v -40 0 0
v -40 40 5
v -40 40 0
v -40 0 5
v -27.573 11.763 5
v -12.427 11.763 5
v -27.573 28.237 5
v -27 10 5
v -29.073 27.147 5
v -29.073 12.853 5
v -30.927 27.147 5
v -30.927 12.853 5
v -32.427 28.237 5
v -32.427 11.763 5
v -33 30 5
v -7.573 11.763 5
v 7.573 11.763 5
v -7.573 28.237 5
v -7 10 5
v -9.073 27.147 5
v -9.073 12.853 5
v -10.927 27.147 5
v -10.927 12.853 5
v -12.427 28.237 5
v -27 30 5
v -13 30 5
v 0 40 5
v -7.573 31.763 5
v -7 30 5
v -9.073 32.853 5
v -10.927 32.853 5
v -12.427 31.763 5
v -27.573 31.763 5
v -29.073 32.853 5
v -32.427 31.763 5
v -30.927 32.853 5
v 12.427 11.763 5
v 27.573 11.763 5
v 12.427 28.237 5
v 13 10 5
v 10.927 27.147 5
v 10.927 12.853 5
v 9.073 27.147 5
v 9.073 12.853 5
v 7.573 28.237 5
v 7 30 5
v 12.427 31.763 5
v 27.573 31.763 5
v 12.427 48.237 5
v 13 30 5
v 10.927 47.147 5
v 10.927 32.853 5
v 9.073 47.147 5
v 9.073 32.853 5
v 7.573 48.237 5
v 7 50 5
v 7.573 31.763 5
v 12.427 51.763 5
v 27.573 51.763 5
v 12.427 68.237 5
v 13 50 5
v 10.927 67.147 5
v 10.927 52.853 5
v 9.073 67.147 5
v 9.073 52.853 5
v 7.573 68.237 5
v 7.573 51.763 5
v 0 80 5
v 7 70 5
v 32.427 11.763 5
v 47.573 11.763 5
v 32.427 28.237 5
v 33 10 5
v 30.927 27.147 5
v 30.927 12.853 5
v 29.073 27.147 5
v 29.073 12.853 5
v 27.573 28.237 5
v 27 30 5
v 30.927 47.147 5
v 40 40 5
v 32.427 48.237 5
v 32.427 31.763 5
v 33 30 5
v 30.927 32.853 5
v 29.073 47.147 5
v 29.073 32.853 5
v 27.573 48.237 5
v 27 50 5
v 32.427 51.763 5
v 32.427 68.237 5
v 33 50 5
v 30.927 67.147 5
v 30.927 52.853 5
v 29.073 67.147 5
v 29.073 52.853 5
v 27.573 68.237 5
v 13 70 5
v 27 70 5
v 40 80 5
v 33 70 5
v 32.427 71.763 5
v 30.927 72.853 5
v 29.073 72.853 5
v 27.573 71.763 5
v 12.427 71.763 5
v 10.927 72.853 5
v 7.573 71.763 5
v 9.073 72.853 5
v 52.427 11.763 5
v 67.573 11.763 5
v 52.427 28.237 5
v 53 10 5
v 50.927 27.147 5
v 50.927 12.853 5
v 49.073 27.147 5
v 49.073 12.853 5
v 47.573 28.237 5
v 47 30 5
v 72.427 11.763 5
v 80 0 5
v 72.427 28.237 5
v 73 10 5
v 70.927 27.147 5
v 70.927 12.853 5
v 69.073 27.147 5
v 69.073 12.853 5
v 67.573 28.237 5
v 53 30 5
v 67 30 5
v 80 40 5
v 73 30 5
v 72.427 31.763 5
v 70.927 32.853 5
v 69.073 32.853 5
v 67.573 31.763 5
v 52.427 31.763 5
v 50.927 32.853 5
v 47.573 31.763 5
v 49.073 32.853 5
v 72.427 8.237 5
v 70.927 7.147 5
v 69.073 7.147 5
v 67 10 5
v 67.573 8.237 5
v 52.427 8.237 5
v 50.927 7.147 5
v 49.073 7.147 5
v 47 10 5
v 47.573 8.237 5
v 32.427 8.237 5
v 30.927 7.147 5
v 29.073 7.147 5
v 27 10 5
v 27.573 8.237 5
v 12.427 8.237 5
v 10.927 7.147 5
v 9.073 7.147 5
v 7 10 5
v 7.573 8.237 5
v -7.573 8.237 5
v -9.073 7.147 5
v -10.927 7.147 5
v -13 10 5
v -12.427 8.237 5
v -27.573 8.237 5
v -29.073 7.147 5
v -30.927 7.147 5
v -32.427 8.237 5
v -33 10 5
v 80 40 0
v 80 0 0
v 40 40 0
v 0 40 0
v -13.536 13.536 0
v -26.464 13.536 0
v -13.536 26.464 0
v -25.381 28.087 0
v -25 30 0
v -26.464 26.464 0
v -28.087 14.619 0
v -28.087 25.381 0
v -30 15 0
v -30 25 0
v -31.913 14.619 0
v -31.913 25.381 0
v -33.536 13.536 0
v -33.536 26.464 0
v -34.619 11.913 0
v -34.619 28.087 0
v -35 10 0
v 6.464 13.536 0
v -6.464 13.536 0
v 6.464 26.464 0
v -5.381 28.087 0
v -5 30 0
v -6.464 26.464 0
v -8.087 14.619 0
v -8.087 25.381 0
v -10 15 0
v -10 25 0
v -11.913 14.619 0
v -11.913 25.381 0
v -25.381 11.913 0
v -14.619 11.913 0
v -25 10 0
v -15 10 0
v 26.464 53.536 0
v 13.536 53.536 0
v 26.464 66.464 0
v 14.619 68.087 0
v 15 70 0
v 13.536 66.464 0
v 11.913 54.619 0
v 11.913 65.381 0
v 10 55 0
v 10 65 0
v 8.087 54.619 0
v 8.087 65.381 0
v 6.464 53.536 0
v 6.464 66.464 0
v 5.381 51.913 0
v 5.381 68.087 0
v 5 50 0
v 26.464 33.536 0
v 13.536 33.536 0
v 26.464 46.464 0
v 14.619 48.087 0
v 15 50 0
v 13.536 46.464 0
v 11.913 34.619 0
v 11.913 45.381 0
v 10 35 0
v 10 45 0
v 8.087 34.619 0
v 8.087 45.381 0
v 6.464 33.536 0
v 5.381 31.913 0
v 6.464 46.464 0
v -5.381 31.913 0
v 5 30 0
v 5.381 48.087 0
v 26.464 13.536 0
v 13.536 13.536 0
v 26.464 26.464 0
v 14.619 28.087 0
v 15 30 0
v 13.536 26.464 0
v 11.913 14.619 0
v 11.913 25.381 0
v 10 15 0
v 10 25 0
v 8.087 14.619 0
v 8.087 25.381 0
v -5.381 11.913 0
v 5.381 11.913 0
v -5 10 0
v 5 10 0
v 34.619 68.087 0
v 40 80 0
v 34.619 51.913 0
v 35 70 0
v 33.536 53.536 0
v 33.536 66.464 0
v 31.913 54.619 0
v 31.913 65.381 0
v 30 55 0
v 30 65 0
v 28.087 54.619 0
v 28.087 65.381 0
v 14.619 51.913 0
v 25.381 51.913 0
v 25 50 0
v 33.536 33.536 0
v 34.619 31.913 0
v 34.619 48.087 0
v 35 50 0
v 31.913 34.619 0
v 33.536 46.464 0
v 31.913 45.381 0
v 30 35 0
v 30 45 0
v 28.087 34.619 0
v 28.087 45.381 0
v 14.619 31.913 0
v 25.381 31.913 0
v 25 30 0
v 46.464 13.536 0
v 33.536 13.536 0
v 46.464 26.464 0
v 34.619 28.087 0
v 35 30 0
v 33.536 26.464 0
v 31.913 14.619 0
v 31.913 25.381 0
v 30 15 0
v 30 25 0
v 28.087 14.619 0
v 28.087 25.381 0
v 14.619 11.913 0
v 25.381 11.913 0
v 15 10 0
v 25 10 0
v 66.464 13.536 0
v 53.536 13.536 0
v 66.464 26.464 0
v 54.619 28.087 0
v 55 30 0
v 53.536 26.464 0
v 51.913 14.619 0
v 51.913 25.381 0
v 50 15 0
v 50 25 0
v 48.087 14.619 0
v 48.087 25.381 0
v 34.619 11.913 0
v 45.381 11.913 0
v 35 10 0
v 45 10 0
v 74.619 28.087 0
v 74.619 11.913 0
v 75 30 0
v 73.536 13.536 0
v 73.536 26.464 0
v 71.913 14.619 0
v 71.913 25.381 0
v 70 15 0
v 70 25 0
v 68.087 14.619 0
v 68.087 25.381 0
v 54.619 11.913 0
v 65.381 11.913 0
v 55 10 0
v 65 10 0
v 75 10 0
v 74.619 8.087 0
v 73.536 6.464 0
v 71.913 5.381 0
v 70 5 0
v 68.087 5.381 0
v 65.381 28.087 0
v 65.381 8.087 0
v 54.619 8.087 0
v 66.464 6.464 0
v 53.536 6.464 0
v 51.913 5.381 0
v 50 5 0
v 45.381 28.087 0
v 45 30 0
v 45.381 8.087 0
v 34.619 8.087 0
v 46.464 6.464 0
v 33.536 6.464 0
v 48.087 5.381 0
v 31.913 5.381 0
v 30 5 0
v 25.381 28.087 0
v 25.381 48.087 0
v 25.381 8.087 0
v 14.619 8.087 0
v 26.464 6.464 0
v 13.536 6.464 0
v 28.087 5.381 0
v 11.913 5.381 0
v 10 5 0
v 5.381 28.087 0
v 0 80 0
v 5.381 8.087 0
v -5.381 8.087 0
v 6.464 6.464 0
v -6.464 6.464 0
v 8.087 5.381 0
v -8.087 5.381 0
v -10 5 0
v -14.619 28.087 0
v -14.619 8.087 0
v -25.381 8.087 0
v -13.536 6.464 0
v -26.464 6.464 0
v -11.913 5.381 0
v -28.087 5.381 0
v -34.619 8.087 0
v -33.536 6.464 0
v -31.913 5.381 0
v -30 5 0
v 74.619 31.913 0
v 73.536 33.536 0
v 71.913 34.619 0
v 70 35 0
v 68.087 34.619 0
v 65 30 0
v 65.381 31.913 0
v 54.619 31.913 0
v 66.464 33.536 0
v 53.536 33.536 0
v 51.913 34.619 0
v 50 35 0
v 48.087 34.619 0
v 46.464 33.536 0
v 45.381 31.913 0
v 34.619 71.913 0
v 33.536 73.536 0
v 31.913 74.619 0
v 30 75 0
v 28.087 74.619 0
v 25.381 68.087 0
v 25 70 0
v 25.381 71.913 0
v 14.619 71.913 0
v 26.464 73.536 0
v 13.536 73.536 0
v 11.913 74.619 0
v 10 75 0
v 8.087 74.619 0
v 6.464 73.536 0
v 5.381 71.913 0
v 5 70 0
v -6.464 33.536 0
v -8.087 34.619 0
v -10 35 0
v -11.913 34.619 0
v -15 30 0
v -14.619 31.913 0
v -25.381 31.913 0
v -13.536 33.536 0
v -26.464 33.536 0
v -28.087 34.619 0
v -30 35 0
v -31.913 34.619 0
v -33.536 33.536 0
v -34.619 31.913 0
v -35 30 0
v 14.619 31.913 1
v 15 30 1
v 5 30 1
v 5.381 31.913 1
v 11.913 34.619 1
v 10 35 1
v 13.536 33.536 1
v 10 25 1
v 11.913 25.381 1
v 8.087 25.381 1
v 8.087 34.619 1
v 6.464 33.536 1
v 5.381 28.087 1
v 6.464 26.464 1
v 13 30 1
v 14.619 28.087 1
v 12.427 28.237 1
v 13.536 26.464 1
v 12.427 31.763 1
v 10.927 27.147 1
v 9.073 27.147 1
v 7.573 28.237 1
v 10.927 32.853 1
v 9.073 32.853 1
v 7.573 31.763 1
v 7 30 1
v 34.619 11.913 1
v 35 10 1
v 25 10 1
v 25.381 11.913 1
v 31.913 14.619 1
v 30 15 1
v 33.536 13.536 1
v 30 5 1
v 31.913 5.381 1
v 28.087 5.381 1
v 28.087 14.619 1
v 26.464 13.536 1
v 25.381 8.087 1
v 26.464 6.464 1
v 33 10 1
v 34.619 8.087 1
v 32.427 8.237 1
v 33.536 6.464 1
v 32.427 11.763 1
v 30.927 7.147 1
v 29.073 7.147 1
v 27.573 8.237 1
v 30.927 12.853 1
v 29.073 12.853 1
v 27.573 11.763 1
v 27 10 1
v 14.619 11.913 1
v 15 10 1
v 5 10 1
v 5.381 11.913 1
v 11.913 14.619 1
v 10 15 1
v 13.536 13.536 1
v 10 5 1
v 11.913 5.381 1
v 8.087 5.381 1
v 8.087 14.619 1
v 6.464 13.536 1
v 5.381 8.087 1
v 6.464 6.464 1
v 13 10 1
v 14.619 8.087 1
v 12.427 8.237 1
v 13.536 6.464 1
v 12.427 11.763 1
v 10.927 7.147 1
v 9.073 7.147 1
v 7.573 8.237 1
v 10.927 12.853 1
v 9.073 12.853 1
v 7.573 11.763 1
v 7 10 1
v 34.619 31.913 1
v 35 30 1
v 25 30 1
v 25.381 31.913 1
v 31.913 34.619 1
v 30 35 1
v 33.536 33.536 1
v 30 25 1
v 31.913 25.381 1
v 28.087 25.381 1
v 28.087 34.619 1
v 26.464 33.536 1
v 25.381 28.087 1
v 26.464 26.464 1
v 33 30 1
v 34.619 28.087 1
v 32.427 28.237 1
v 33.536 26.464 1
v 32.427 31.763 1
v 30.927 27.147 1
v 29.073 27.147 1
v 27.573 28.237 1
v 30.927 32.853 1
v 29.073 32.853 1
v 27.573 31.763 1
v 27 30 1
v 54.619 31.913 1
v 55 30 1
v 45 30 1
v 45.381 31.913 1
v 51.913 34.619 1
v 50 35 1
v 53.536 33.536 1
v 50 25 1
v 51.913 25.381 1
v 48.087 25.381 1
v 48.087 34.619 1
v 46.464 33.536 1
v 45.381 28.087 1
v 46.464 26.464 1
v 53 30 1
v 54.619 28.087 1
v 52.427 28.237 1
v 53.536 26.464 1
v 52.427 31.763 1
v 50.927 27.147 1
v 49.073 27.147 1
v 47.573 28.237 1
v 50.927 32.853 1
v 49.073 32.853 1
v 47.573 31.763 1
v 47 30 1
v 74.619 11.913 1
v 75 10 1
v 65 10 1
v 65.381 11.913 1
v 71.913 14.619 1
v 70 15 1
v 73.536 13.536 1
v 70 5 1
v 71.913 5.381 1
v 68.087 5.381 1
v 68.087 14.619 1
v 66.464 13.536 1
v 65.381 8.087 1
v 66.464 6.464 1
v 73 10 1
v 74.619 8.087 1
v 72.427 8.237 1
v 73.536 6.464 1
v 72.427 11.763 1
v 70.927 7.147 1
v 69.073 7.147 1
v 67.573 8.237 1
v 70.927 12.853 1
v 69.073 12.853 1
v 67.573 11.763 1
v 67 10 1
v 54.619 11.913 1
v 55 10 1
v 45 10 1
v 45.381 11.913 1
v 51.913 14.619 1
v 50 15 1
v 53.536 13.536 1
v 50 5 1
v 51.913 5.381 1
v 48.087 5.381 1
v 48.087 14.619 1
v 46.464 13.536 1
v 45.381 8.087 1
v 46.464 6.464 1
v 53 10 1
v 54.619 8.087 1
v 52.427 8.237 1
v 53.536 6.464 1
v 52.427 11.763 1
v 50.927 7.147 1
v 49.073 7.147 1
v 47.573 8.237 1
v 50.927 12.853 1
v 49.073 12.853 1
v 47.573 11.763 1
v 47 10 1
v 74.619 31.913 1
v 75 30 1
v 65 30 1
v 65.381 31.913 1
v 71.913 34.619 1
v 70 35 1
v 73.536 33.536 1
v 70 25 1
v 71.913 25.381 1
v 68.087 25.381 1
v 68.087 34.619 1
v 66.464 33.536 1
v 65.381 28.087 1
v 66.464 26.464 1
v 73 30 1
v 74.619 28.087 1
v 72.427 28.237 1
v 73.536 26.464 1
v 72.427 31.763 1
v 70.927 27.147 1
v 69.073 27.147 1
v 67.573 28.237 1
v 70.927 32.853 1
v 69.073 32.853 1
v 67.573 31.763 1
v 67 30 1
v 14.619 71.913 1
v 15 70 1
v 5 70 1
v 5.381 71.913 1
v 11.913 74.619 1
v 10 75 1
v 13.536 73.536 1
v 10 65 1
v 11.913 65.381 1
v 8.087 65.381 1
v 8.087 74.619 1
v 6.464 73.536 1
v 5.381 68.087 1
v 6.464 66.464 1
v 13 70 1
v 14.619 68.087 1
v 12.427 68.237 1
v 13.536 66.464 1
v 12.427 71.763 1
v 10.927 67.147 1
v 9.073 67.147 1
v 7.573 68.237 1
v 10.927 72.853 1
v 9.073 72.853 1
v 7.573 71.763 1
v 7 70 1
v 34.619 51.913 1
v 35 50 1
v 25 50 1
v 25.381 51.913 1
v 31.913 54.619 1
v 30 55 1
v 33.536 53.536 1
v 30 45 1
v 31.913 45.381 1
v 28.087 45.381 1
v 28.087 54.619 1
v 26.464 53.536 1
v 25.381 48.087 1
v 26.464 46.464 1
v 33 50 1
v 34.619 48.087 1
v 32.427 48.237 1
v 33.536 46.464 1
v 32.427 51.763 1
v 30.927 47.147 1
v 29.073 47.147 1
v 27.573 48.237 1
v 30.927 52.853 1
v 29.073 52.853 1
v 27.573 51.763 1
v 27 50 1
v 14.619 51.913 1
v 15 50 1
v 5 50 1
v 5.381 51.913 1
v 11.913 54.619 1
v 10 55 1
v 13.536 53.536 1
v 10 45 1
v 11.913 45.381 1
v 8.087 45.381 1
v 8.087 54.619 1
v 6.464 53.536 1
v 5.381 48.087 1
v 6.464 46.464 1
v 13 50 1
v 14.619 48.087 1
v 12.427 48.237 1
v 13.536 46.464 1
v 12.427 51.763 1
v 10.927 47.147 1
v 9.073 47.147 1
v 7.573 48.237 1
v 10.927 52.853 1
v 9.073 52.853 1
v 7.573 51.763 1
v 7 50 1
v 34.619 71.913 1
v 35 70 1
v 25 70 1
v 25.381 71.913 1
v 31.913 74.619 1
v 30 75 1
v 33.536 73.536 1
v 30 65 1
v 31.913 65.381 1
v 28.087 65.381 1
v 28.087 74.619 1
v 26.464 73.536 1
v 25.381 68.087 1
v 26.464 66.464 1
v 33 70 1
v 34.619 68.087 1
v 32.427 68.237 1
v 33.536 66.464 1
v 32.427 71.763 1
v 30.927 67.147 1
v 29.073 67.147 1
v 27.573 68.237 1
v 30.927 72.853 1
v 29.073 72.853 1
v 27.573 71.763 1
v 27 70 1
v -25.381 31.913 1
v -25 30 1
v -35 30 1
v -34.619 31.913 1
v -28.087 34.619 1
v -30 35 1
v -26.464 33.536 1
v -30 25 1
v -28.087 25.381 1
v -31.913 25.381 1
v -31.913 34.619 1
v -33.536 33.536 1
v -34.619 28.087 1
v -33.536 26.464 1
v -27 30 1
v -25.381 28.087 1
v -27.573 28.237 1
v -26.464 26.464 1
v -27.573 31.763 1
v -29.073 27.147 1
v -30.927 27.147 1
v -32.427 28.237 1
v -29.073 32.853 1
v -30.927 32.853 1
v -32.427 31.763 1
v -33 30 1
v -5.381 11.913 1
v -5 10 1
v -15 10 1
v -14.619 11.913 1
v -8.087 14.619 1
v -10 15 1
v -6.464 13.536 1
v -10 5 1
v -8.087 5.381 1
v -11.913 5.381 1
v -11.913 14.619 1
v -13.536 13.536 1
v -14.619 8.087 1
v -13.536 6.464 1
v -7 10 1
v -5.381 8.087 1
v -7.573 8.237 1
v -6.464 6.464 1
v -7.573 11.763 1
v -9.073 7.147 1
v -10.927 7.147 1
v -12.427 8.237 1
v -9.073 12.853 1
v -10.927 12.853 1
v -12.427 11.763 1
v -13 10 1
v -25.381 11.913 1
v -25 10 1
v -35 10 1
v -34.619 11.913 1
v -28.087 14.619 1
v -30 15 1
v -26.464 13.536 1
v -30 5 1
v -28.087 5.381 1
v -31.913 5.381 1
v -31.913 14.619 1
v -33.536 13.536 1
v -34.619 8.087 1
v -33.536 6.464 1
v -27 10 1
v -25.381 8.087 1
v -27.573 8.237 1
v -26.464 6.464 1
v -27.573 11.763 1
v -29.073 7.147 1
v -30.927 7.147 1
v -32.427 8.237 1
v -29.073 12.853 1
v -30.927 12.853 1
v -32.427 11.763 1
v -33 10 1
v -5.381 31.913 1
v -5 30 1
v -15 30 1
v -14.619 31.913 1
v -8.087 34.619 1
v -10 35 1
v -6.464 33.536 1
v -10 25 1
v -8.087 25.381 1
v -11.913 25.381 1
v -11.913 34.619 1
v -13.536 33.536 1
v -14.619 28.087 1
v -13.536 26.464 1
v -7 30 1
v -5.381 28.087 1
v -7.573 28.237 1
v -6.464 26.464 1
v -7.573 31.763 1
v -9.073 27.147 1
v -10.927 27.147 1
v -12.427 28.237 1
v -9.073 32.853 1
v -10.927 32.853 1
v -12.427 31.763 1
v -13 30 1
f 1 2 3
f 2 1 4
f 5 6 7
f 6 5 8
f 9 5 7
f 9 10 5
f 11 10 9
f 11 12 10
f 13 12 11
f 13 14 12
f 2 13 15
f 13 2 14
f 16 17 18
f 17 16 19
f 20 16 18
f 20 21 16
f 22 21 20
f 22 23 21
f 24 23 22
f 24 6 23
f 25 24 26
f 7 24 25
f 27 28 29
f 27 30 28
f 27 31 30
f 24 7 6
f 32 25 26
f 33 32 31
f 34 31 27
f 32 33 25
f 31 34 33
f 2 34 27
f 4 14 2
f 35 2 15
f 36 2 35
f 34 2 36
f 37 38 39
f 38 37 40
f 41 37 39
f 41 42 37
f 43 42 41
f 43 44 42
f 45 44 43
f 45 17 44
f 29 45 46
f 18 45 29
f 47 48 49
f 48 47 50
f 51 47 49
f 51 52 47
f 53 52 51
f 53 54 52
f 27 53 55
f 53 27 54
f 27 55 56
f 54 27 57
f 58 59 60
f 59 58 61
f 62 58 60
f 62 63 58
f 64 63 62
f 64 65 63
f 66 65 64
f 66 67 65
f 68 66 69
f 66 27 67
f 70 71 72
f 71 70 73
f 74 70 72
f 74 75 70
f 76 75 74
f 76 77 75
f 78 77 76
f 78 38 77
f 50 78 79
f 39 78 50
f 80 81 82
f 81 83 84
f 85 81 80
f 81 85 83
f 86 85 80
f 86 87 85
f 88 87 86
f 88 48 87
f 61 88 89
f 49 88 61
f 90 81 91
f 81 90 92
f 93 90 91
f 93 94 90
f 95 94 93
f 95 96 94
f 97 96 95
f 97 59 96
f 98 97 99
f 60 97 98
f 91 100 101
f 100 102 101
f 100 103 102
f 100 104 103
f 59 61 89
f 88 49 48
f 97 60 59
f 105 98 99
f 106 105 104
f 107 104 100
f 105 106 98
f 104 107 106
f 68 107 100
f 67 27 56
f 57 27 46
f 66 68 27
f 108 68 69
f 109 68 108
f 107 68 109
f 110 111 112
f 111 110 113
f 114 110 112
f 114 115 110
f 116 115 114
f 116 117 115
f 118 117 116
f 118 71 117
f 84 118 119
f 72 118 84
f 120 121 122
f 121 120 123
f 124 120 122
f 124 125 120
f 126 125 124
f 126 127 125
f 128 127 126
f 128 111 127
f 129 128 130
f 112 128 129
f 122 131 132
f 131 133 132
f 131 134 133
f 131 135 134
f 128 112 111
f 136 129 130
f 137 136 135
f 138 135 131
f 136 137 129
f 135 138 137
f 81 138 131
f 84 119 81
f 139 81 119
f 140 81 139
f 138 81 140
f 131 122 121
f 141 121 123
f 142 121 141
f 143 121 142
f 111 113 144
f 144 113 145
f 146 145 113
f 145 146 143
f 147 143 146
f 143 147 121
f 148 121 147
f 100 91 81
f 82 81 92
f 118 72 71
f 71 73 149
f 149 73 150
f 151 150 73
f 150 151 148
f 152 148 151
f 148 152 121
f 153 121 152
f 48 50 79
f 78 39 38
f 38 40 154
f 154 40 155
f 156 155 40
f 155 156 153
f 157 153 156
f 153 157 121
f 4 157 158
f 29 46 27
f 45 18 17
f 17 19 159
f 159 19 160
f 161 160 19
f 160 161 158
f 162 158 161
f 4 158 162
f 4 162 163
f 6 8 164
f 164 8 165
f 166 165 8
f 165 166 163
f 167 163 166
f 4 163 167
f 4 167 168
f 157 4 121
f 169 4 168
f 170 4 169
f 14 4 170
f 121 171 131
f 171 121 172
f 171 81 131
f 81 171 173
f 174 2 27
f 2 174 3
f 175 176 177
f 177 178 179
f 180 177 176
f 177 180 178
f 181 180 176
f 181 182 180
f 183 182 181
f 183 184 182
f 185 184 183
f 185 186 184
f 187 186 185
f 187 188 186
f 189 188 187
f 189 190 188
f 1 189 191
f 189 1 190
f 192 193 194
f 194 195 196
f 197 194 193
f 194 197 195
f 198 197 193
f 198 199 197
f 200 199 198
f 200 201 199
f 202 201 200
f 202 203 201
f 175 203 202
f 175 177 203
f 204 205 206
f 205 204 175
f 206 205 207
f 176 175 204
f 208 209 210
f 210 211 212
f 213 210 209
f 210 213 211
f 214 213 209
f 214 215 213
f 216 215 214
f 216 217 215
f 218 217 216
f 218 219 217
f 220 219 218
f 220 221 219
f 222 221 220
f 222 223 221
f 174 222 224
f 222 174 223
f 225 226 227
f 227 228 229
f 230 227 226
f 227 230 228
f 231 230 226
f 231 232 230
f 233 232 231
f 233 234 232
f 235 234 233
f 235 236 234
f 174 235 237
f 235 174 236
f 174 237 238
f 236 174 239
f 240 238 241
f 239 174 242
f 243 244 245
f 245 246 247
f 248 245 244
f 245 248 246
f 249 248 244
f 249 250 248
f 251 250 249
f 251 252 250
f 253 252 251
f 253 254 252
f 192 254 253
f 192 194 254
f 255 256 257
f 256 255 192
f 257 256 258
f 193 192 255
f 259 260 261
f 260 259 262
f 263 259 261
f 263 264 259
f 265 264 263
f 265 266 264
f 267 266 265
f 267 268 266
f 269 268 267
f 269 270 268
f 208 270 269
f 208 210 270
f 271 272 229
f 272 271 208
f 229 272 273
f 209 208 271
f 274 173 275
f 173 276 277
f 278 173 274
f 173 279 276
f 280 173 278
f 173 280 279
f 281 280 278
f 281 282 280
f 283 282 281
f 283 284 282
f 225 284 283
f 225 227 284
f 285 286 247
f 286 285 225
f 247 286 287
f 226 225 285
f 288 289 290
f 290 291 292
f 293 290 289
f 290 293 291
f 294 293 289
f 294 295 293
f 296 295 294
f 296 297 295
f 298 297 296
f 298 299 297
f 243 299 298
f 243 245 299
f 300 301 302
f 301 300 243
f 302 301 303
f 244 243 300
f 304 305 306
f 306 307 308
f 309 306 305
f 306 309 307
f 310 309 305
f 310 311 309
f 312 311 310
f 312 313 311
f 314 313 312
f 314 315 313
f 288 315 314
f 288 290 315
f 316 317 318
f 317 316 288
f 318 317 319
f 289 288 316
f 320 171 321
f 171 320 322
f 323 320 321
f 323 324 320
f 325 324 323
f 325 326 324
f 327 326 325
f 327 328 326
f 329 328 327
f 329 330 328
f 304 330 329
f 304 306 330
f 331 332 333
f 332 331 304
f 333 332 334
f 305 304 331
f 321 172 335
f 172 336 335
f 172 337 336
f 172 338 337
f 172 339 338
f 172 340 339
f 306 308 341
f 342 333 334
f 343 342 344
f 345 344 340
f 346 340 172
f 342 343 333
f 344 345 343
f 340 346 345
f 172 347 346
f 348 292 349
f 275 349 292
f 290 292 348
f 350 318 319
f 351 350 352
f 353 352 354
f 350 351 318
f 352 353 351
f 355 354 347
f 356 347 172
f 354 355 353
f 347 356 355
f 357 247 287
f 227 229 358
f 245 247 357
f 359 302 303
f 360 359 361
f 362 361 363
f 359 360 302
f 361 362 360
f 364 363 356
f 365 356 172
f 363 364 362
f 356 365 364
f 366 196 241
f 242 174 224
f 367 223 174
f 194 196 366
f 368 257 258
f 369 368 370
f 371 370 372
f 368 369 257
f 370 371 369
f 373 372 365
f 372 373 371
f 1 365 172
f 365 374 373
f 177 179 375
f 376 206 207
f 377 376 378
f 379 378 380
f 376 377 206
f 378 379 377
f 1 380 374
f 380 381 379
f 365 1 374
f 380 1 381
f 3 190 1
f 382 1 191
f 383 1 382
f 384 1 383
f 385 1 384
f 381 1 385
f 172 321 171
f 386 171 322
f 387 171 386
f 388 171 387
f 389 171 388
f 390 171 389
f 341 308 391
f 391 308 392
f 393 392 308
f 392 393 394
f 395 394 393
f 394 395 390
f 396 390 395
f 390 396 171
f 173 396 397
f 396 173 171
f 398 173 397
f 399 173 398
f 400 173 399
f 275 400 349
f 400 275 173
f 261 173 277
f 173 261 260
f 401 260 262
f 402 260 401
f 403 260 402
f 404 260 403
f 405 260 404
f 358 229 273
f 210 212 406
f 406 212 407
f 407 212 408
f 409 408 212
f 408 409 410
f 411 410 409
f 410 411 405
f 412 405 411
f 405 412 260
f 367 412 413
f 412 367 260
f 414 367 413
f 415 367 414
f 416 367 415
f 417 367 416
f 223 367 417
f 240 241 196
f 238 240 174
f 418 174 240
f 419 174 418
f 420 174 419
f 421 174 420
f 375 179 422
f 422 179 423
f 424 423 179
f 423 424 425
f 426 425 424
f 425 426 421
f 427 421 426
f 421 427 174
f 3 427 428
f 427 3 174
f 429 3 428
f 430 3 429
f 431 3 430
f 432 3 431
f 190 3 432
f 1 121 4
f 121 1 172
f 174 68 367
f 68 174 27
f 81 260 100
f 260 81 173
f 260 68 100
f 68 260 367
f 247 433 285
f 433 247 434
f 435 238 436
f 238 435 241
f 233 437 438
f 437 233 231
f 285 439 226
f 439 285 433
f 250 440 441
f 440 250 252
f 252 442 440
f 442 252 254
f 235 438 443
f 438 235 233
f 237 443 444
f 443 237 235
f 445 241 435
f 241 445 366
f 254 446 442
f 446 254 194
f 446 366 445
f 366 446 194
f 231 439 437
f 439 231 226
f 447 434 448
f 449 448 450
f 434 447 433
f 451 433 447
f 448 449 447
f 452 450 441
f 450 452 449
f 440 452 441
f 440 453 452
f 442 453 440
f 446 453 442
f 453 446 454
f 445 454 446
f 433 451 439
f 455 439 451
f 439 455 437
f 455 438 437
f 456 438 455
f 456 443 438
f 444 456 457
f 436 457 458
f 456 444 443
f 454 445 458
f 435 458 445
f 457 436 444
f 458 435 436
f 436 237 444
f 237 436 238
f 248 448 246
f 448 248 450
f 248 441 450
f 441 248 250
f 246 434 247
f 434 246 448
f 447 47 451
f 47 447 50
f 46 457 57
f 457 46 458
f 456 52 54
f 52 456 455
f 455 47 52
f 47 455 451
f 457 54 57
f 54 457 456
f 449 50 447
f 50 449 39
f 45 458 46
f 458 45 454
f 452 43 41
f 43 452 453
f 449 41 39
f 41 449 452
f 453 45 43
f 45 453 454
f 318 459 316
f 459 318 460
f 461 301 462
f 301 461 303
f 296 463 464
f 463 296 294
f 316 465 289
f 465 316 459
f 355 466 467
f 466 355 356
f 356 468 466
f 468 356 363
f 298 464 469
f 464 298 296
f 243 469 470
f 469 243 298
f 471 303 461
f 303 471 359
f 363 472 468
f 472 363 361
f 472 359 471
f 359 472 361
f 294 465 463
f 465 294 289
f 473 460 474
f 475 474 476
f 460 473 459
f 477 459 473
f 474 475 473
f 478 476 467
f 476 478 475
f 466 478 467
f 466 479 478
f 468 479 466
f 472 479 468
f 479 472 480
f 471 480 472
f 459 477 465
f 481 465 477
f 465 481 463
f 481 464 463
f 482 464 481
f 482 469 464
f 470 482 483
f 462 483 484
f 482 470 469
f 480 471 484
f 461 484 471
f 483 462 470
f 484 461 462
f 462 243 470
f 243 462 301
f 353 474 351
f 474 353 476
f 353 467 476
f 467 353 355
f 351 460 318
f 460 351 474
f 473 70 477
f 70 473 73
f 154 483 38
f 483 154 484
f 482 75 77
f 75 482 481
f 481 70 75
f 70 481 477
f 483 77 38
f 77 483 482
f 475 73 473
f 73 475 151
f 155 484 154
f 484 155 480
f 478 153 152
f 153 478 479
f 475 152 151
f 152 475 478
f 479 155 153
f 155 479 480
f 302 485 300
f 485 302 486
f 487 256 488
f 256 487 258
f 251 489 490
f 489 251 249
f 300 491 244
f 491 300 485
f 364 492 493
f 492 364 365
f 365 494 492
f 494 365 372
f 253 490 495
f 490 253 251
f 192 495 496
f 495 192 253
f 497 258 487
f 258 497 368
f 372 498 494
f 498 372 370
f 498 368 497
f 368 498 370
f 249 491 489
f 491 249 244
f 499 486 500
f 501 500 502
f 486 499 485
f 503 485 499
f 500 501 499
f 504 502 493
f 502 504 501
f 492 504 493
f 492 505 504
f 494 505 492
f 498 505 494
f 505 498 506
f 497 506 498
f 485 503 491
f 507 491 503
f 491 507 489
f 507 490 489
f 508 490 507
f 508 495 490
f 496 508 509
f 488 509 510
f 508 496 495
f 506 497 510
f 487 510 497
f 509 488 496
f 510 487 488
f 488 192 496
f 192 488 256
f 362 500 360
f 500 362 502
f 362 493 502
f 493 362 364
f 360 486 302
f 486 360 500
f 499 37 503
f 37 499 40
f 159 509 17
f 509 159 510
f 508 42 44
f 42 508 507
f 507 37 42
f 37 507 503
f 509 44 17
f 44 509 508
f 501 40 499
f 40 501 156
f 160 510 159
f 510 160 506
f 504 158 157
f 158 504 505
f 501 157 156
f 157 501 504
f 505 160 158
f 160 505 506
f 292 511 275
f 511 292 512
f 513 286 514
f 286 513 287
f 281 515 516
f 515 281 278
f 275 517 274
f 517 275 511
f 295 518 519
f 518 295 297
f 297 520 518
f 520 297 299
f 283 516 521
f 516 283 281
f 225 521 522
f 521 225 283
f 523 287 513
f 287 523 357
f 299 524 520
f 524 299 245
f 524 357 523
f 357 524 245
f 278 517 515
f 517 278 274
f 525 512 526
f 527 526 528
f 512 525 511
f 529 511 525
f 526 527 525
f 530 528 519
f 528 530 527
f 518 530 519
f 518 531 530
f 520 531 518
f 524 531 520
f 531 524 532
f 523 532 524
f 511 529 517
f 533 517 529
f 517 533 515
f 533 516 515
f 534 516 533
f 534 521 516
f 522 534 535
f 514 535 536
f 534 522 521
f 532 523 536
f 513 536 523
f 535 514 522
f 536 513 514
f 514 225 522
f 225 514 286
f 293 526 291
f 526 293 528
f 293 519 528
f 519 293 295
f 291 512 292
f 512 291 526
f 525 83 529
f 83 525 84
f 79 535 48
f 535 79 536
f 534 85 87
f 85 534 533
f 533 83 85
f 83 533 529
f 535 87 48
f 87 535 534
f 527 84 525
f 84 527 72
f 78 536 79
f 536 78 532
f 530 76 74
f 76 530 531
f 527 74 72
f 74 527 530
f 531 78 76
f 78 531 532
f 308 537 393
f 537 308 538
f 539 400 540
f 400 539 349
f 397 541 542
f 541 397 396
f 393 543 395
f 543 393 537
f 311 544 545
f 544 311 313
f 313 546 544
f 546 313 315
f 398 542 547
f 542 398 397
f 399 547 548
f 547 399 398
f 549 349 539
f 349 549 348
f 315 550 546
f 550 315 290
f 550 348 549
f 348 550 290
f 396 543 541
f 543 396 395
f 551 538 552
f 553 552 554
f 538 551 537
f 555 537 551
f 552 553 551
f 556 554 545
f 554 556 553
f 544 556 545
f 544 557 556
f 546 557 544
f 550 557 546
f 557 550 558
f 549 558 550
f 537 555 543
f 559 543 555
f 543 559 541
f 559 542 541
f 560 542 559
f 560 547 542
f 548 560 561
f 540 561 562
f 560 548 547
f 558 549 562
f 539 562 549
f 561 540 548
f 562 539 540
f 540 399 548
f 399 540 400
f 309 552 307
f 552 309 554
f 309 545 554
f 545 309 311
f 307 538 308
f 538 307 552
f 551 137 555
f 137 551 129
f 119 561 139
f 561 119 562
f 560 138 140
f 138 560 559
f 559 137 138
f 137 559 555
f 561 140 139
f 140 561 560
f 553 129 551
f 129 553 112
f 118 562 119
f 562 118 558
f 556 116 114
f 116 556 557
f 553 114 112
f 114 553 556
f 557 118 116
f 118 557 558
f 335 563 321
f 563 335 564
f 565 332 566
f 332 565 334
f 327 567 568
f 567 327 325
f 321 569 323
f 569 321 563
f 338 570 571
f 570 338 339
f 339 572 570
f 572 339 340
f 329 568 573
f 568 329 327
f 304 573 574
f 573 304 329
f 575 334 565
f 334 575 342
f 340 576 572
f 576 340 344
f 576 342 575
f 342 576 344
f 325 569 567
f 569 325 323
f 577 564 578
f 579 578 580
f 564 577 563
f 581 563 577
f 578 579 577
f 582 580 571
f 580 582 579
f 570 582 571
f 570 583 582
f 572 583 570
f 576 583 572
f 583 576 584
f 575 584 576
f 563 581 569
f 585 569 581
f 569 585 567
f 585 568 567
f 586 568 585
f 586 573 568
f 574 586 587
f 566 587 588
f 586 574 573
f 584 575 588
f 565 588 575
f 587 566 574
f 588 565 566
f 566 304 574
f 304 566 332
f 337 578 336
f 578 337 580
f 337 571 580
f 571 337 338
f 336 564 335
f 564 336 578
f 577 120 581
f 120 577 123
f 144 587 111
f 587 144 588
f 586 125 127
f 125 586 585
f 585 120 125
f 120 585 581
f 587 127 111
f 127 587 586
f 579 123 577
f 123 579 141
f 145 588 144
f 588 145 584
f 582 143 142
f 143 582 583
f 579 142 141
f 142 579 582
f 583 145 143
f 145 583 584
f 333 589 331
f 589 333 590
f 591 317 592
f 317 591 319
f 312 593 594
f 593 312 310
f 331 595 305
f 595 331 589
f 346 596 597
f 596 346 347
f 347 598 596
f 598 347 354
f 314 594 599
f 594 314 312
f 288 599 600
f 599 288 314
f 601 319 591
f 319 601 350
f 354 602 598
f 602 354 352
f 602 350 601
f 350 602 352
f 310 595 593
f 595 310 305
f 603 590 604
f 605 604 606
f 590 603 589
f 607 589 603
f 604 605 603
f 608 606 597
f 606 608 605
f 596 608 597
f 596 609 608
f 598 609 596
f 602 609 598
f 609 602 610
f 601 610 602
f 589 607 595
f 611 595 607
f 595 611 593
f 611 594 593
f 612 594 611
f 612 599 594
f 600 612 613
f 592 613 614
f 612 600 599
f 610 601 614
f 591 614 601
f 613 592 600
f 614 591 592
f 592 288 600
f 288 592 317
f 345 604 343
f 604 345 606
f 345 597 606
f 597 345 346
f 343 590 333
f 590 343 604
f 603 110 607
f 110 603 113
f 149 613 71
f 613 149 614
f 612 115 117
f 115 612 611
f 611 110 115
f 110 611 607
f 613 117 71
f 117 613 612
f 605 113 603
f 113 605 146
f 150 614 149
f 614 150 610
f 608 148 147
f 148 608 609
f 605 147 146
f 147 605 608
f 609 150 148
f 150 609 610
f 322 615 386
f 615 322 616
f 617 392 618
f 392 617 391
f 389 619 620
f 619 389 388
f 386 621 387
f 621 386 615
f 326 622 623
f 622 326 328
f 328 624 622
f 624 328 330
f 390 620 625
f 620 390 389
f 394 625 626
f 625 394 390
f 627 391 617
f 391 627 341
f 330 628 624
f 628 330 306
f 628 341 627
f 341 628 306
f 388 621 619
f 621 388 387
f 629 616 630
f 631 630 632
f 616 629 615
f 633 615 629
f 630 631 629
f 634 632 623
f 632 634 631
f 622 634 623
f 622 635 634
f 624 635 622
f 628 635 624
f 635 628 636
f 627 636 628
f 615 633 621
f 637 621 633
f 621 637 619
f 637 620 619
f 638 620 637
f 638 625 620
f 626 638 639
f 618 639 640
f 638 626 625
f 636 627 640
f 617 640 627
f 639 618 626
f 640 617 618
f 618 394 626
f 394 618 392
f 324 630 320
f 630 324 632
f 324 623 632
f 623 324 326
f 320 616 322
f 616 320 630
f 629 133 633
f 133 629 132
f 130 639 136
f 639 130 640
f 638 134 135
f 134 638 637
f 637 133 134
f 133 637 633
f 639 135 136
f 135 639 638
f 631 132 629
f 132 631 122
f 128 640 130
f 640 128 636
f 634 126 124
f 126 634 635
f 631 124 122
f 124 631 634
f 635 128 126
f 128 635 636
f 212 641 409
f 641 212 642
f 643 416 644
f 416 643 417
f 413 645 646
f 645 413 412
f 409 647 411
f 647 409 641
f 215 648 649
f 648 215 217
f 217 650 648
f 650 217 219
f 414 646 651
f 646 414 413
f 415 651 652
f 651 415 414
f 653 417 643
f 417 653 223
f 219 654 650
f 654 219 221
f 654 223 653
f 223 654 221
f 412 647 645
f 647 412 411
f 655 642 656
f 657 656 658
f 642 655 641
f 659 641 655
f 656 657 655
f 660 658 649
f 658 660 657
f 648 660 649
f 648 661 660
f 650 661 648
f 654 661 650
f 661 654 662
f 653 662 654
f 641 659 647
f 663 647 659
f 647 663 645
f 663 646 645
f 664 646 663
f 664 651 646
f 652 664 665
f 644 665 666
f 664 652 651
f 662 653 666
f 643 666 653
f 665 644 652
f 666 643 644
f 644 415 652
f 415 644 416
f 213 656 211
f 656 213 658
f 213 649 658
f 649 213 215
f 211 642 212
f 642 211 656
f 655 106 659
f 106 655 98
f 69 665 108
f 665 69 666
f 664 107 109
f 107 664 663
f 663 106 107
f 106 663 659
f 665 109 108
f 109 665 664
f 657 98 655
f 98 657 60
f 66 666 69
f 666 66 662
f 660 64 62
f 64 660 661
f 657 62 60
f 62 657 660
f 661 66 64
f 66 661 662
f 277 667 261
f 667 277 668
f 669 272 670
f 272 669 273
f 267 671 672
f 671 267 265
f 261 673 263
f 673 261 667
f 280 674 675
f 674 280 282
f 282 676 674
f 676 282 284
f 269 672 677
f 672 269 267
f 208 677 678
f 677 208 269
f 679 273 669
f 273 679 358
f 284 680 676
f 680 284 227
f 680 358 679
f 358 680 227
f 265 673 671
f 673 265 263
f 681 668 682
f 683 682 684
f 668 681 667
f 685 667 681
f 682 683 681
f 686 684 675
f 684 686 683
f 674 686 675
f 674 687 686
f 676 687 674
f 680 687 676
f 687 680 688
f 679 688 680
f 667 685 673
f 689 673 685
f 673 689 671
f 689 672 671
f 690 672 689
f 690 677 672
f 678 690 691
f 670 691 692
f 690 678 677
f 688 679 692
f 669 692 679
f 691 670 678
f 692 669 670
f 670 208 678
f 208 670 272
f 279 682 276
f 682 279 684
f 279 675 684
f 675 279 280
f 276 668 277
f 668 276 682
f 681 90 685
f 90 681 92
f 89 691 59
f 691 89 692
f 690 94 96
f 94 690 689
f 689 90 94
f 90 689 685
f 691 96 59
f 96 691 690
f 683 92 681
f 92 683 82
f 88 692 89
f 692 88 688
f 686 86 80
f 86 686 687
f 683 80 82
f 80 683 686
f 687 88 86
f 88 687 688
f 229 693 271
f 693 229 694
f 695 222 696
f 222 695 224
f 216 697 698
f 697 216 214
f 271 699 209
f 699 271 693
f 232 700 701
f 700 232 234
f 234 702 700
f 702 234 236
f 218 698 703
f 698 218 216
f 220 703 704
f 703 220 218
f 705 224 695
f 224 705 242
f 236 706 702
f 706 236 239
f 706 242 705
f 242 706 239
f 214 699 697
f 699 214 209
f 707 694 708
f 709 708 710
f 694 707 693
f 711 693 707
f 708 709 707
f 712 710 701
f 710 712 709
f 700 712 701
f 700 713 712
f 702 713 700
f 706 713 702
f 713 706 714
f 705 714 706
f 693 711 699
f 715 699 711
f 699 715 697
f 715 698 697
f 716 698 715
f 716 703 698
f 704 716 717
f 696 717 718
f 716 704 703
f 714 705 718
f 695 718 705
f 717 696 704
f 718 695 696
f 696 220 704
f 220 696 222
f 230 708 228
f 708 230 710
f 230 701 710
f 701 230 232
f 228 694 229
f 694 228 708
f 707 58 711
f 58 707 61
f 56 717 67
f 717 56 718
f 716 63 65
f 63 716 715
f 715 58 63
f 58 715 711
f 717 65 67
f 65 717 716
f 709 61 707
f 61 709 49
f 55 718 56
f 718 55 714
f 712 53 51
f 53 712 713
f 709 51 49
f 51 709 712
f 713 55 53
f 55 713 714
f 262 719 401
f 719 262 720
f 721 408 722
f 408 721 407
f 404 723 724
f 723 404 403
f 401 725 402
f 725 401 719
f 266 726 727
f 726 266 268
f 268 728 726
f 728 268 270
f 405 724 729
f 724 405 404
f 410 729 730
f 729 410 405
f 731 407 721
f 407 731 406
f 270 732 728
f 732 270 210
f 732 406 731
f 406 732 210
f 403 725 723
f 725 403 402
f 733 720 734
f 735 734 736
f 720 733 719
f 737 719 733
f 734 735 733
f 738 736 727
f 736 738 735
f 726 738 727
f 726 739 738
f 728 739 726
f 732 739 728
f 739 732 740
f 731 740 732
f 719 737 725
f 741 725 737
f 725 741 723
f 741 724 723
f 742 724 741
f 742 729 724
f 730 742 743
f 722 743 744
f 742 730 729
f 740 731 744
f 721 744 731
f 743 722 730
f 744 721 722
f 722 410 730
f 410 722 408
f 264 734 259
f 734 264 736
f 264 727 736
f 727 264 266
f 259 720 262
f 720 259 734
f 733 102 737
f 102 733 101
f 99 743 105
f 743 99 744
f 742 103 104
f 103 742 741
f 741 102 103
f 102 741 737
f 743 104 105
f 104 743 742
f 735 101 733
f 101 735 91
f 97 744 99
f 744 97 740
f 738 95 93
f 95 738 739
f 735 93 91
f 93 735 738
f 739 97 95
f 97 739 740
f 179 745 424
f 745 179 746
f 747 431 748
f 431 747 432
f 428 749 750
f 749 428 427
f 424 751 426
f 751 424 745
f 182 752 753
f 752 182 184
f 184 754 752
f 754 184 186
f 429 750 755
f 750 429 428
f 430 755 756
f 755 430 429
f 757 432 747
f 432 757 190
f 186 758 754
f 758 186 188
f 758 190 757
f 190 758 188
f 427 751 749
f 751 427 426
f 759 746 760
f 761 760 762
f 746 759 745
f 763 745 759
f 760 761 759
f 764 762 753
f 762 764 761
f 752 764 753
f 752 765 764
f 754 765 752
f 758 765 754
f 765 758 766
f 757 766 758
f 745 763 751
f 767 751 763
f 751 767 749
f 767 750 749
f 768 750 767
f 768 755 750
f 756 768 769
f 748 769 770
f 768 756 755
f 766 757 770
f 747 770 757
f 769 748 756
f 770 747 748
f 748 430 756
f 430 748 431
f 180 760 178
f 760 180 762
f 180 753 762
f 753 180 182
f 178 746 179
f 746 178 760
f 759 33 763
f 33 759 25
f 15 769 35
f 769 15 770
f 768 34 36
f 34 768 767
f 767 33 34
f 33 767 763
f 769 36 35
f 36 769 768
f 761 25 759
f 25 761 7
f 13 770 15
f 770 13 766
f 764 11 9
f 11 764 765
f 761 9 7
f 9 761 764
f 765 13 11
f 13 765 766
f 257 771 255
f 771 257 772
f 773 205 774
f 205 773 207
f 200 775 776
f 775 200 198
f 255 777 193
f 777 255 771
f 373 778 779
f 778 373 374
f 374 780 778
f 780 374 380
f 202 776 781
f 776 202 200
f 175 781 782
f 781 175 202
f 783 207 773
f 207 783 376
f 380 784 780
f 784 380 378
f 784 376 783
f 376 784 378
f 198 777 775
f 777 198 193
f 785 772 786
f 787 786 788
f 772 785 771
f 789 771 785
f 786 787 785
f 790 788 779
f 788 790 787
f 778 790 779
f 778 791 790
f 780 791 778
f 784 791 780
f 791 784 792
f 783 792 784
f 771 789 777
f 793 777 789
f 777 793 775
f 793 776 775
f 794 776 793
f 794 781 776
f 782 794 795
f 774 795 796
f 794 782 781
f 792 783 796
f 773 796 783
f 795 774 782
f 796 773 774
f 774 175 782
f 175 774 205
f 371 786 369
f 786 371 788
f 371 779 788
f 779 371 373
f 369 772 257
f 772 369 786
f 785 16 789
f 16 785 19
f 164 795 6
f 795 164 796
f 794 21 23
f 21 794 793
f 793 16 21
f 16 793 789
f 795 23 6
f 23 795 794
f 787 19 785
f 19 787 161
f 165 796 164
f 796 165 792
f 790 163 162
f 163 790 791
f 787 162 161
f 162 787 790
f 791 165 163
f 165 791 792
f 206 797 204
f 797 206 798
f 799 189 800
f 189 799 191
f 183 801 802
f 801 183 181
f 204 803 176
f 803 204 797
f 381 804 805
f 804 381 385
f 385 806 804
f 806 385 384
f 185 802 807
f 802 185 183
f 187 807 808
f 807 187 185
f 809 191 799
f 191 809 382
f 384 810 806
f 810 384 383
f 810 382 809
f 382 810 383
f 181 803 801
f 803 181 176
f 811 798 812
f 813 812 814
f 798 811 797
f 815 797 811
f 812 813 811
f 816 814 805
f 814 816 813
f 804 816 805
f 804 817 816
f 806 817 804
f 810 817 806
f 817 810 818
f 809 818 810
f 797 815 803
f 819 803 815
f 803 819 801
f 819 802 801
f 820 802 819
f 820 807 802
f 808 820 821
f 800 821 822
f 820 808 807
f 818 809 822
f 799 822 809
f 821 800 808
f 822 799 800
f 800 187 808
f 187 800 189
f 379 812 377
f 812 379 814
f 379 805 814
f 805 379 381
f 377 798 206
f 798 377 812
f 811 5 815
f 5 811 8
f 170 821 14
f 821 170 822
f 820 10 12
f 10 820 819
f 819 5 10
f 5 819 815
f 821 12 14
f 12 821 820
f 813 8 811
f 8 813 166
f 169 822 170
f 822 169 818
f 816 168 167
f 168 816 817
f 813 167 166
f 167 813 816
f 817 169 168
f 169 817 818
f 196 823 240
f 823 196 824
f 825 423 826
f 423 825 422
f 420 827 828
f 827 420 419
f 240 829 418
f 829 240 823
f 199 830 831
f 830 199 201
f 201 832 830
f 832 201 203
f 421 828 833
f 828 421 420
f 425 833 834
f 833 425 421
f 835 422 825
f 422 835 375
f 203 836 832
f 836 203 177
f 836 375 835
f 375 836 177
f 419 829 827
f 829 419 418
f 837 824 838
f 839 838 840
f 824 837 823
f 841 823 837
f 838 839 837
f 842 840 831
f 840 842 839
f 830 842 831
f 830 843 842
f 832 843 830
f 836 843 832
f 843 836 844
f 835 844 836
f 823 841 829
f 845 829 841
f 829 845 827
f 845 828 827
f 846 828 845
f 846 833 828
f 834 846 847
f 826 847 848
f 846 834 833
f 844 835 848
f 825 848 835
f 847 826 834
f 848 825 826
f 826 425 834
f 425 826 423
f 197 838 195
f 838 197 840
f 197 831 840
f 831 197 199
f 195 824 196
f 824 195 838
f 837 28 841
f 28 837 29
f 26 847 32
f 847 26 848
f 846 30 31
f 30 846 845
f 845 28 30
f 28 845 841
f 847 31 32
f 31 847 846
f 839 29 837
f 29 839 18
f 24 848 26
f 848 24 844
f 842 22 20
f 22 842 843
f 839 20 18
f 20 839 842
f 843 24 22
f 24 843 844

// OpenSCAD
// file: Profile.scad
q = 5;

ri = 0.3;
w2 =  6.4/2-ri;
w1 = 11.0/2-ri;
w0 =     w2;
th =  4.3;
t0 =  2.1+1.8+ri;
t1 =  t0+2.35;
t2 =  t0+th-ri;


module groove() {
    hull() {
        translate([ t2+2*ri,  w2+2*ri]) circle(r=ri, $fn=2*q);
        translate([ t2+2*ri+5,  w2+2*ri+5]) circle(r=ri, $fn=2*q);
        translate([ t2+2*ri,  10]) circle(r=ri, $fn=3);
    }
}

module slot_6() {
    hull() {
        translate([ t0, -w0]) circle(r=ri, $fn=5*q);
        translate([ t0,  w0]) circle(r=ri, $fn=2*q);
        translate([ t1, -w1]) circle(r=ri, $fn=2*q);
        translate([ t1,  w1]) circle(r=ri, $fn=2*q);
        translate([ t2, -w1]) circle(r=ri, $fn=2*q);
        translate([ t2,  w1]) circle(r=ri, $fn=2*q);
    }  
    translate([ t0-0.3, 0]) circle(r=0.5, $fn=5*q);    
}
module vSlot_6() {
    slot_6();
    difference() {
        translate([ t2+5,  0]) square([10,10], center=true);
        groove();
        mirror([0,1]) groove();
    }
}

module profile20x20_6V() {  // 20x20mm profile 6mm Vslot
    le = 20/2;
    difference() {
        hull() {
            translate([-le+0.5,-le+0.5]) circle(r=0.5, $fn=2*q);
            translate([-le+0.5, le-0.5]) circle(r=0.5, $fn=2*q);
            translate([ le-0.5,-le+0.5]) circle(r=0.5, $fn=2*q);
            translate([ le-0.5, le-0.5]) circle(r=0.5, $fn=2*q);
        }   
        circle(d=4.2, $fn=3*q);
        for(i=[0:3]) rotate(90*i) vSlot_6();
    }    
}

module profile40x40_6V() {  // 40x40mm profile 6mm Vslot
    le = 40/2;
    difference() {
        hull() {
            translate([-le+2,-le+2]) circle(r=2, $fn=3*q);
            translate([-le+2, le-2]) circle(r=2, $fn=3*q);
            translate([ le-2,-le+2]) circle(r=2, $fn=3*q);
            translate([ le-2, le-2]) circle(r=2, $fn=3*q);
        }   
        for(i=[0:3]) {
            rotate(90*i) translate([ le/2, le/2]) circle(d=4.6, $fn=3*q);
            rotate(90*i) translate([ le/2, le/2]) vSlot_6();
            rotate(90*i) translate([ le/2,-le/2]) vSlot_6();
            rotate(90*i) translate([-le/2, le/2])  slot_6();
            rotate(90*i) translate([-le/2,-le/2])  slot_6();
        }
        square([le*0.35, le*1.85],center=true);
        square([le*1.85, le*0.35],center=true);
        rotate(45) square(le*0.93,center=true);
    }
}
module V20x20_6(h) {
    linear_extrude(height=h)
    profile20x20_6V();
}

module V40x40_6(h) {
    linear_extrude(height=h)
    profile40x40_6V();
}

//T40x40_10(100);
//vSlotGroove6();
//profile20x20_6V();
//profile40x40_6V();
V20x20_6(50);
translate([60,0]) V40x40_6(50);
// main file
use <Profile.scad>

//%translate([20,20,0]) V40x40_6(50);
//%translate([60.1,20,0]) V40x40_6(50);

module m5_bolt(tl)
{
    rotate([0,0,0]) translate([0,0,0]) cylinder(r=5,h=4);
    rotate([0,0,0]) translate([0,0,2.9]) cylinder(r=3,h=tl+1);
    
}

module theplate()
{
 translate([-40,0,0]) cube([120,40,5]);
 translate([0,40,0]) cube([40,40,5]); 
     
    
}

module tplate()
{
difference(){
 theplate();
 translate([10,30,-3]) m5_bolt(30);
 translate([30,10,-3]) m5_bolt(30);
 translate([10,10,-3]) m5_bolt(30);
 translate([30,30,-3]) m5_bolt(30);
 translate([40+10,30,-3]) m5_bolt(30);
 translate([40+30,10,-3]) m5_bolt(30);
 translate([40+10,10,-3]) m5_bolt(30);
 translate([40+30,30,-3]) m5_bolt(30);
 translate([0+10,30+40,-3]) m5_bolt(30);
 translate([0+30,10+40,-3]) m5_bolt(30);
 translate([0+10,10+40,-3]) m5_bolt(30);
 translate([0+30,30+40,-3]) m5_bolt(30); 
 translate([-40+10,30,-3]) m5_bolt(30);
 translate([-40+30,10,-3]) m5_bolt(30);
 translate([-40+10,10,-3]) m5_bolt(30);
 translate([-40+30,30,-3]) m5_bolt(30);    
 
}   
tsize = 10;
}

//translate([0,0,50]) theplate();
tplate();
